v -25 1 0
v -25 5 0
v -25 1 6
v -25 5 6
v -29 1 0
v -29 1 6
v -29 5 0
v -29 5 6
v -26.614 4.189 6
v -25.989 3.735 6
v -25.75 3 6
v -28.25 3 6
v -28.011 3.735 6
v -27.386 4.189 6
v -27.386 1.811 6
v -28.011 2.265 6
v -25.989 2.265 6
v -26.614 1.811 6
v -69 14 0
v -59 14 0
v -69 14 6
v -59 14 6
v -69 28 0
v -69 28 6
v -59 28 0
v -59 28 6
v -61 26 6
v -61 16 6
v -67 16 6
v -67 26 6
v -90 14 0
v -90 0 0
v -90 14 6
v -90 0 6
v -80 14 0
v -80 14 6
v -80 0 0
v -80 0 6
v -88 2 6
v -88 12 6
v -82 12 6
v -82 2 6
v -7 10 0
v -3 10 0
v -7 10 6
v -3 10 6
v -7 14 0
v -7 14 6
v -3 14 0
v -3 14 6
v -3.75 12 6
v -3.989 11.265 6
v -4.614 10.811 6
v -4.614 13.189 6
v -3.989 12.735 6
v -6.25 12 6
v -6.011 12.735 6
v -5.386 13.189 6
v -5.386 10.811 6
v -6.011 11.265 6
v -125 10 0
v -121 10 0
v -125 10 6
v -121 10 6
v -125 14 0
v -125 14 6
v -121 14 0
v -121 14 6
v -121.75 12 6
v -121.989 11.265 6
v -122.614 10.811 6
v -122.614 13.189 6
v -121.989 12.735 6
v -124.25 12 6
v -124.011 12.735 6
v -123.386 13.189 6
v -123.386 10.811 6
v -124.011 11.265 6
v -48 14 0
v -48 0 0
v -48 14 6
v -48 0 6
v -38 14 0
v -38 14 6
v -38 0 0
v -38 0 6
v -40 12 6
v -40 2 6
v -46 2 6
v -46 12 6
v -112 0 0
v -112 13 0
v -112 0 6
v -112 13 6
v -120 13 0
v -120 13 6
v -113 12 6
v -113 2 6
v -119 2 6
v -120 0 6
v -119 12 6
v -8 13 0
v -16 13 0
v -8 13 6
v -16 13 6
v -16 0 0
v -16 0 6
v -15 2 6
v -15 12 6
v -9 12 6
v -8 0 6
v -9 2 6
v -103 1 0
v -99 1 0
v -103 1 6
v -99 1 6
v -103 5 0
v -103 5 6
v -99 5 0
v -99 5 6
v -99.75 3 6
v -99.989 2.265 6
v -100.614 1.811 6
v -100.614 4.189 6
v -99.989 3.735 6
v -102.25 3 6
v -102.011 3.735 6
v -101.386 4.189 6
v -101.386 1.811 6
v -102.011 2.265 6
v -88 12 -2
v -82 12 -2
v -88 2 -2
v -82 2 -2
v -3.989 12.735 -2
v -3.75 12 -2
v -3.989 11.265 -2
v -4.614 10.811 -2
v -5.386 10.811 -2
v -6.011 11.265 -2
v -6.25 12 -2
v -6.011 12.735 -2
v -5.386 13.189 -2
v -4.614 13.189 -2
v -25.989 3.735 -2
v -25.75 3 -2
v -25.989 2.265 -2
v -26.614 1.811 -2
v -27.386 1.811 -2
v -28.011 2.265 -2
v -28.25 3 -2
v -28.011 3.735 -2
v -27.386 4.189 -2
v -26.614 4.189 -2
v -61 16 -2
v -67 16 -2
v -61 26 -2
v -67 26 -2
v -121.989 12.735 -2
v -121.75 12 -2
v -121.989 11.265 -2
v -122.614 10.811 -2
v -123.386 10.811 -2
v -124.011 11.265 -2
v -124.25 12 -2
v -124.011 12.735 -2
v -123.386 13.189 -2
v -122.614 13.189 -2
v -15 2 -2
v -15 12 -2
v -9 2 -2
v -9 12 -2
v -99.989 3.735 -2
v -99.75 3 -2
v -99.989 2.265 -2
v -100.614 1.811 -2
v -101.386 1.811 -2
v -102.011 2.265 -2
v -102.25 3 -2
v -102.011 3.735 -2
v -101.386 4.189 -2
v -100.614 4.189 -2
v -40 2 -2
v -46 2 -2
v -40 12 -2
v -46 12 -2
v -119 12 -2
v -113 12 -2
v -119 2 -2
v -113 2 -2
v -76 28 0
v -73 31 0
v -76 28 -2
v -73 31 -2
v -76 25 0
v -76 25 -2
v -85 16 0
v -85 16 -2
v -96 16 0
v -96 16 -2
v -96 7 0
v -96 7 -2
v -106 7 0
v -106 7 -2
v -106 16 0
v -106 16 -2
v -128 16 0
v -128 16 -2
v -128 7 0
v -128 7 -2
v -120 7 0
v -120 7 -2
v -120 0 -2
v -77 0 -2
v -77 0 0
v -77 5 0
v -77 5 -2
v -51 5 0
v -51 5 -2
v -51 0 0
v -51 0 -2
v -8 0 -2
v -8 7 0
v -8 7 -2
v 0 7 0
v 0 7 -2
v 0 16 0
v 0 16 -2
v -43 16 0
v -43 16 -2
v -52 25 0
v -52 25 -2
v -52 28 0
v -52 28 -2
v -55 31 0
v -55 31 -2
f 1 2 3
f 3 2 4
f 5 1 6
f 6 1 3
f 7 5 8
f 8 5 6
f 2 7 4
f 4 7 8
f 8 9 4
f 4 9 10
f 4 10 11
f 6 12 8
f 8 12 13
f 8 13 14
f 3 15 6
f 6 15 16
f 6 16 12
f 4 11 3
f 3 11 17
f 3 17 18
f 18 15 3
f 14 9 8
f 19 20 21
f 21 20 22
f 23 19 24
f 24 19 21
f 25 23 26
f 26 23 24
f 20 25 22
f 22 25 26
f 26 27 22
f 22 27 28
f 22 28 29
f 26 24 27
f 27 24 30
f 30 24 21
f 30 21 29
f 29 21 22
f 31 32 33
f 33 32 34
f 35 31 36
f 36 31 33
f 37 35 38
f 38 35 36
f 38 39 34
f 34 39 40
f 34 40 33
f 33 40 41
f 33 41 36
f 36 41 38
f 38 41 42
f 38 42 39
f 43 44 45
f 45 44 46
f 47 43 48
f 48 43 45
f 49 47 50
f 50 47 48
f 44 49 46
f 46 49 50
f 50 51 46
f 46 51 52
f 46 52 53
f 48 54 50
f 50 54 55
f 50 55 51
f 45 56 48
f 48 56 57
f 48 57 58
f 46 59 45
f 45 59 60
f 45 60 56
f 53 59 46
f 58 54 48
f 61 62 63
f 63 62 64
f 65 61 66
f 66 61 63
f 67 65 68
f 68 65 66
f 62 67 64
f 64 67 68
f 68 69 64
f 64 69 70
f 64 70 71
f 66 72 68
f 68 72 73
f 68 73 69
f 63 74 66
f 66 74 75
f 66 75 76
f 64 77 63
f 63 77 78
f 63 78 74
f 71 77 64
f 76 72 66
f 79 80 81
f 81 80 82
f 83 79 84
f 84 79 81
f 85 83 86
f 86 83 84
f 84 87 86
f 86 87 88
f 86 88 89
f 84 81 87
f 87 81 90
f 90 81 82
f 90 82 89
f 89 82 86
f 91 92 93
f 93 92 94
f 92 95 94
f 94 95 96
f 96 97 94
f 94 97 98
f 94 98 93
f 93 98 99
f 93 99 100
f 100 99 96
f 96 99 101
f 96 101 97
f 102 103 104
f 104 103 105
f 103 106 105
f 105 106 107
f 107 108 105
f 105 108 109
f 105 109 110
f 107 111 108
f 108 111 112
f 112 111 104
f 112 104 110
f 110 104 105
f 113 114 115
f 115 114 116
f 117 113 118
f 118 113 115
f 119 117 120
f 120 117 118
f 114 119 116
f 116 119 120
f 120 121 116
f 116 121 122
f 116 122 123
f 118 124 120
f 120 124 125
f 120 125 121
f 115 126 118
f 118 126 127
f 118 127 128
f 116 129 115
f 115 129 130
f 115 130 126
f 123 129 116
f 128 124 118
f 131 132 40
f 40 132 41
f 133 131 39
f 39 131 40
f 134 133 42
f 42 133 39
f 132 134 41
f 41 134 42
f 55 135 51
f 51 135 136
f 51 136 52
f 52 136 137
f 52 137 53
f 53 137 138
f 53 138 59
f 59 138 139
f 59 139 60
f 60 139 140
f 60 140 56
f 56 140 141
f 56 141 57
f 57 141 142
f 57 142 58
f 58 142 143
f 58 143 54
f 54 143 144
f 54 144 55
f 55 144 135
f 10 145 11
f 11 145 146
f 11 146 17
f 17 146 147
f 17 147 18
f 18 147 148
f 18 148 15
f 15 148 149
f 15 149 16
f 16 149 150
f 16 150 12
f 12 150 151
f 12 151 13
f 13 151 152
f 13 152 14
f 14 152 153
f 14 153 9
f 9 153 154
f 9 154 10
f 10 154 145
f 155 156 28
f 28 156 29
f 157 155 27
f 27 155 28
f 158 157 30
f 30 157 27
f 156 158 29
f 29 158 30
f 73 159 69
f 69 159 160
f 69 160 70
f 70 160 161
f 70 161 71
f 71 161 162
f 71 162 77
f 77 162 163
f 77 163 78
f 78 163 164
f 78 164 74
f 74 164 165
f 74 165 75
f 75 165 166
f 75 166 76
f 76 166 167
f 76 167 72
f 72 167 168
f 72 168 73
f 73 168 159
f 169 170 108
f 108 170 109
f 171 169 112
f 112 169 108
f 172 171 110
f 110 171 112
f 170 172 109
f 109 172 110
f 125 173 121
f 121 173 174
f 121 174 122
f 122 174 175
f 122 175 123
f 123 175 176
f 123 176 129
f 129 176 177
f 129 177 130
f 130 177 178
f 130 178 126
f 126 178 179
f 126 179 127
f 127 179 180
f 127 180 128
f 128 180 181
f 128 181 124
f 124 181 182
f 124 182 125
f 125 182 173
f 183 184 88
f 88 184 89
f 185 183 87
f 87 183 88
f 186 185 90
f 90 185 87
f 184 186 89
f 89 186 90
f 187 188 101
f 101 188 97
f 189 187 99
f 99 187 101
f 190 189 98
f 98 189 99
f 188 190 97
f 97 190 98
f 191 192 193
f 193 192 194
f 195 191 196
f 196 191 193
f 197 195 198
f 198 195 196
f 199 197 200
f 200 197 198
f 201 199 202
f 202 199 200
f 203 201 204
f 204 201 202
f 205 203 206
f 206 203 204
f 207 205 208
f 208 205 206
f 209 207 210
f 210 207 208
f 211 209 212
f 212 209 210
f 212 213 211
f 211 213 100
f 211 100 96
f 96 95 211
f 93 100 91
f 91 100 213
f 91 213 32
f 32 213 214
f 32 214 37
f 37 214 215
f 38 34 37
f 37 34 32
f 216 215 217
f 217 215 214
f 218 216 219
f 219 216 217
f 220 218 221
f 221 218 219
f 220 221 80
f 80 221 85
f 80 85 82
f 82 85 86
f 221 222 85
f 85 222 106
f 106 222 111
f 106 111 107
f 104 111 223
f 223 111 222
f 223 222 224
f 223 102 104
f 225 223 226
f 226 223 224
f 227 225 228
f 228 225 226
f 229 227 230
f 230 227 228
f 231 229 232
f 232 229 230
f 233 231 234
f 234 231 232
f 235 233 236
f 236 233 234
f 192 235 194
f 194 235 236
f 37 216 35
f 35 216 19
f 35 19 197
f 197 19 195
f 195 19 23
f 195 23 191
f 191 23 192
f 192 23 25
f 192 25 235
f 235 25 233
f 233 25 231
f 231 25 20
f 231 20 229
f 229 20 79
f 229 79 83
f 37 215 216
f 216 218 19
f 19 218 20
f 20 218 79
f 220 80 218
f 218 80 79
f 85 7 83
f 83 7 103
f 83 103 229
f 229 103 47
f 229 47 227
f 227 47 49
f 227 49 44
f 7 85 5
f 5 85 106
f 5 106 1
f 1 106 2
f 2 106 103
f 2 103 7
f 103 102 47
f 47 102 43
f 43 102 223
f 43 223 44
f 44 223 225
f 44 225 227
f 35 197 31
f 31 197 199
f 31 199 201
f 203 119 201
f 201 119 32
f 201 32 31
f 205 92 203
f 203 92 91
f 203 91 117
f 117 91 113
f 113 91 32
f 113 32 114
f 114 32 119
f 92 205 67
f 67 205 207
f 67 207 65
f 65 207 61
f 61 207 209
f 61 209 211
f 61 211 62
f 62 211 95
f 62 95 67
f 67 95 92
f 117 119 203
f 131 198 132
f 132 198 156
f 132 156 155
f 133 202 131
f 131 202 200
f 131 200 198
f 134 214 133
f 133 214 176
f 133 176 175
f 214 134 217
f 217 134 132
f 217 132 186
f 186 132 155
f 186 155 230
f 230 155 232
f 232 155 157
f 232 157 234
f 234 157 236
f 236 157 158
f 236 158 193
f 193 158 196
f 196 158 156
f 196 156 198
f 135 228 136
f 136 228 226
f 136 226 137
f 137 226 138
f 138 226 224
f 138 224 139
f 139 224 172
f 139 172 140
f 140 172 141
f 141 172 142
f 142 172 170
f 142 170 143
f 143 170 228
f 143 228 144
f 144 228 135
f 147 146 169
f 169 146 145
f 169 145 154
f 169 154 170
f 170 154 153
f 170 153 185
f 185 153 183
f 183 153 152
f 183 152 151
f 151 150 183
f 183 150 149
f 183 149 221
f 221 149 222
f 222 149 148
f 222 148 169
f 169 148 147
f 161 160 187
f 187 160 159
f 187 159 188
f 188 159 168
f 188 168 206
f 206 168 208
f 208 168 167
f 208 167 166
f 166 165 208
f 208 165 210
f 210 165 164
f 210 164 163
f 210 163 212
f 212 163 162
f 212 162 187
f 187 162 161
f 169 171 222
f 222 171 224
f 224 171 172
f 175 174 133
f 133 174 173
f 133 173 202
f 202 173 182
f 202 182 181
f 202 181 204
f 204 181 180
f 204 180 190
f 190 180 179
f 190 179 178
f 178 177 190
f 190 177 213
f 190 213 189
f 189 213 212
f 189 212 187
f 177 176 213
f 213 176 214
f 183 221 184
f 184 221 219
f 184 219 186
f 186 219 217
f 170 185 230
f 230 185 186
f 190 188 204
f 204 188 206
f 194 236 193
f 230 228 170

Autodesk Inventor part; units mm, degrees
ref_plane "YZ Plane" through (0, 0, 0) normal (1, 0, 0) x (0, 1, 0)
ref_plane "XZ Plane" through (0, 0, 0) normal (0, 1, 0) x (-1, 0, 0)
ref_plane "XY Plane" through (0, 0, 0) normal (0, 0, 1) x (1, 0, 0)
sketch "Sketch1" plane through (0, 0, 0) normal (0, 0, 1) x (1, 0, 0)
  line L0 (-64, 31) -> (-73, 31)
  line L1 (-76, 28) -> (-76, 25)
  line L2 (-85, 16) -> (-76, 25)
  line L3 (-76, 28) -> (-73, 31)
  line L4 (-64, 31) -> (-55, 31)
  line L5 (-52, 28) -> (-52, 25)
  line L6 (-43, 16) -> (-52, 25)
  line L7 (-52, 28) -> (-55, 31)
  line L8 (-43, 16) -> (0, 16)
  line L9 (-77, 0) -> (-77, 5)
  line L10 (-77, 5) -> (-51, 5)
  line L11 (-51, 5) -> (-51, 0)
  line L12 (-106, 16) -> (-106, 7)
  line L13 (-106, 7) -> (-96, 7)
  line L14 (-96, 7) -> (-96, 16)
  line L15 (-128, 16) -> (-106, 16)
  line L16 (-96, 16) -> (-85, 16)
  line L17 (-120, 0) -> (-120, 7)
  line L18 (-120, 7) -> (-128, 7)
  line L19 (-120, 0) -> (-77, 0)
  line L20 (-128, 16) -> (-128, 7)
  line L21 (-8, 0) -> (-8, 7)
  line L22 (-8, 7) -> (0, 7)
  line L23 (-51, 0) -> (-8, 0)
  line L24 (0, 7) -> (0, 16)
  point P0 (0, 0)
  dimension "d0" = 128
  dimension "d6" = 3
  dimension "d67" = 5
  dimension "d71" = 22
  dimension "d74" = 9
  dimension "d75" = 10
  dimension "d93" = 7
  dimension "d94" = 8
  dimension "d95" = 7
extrude "Extrusion1" add sketch "Sketch1" against normal blind 2
sketch "Sketch2" plane through (0, 0, 0) normal (0, 0, 1) x (1, 0, 0)
  line L0 (-119, 2) -> (-113, 2)
  line L1 (-113, 2) -> (-113, 12)
  line L2 (-113, 12) -> (-119, 12)
  line L3 (-119, 12) -> (-119, 2)
  line L4 (-121, 10) -> (-125, 10)
  line L5 (-125, 10) -> (-125, 14)
  line L6 (-125, 14) -> (-121, 14)
  line L7 (-121, 14) -> (-121, 10)
  line L8 (-88, 2) -> (-82, 2)
  line L9 (-82, 2) -> (-82, 12)
  line L10 (-82, 12) -> (-88, 12)
  line L11 (-88, 12) -> (-88, 2)
  line L12 (-90, 0) -> (-80, 0)
  line L13 (-80, 0) -> (-80, 14)
  line L14 (-80, 14) -> (-90, 14)
  line L15 (-90, 14) -> (-90, 0)
  line L16 (-99, 1) -> (-103, 1)
  line L17 (-103, 1) -> (-103, 5)
  line L18 (-103, 5) -> (-99, 5)
  line L19 (-99, 5) -> (-99, 1)
  line L20 (-61, 26) -> (-67, 26)
  line L21 (-67, 26) -> (-67, 16)
  line L22 (-67, 16) -> (-61, 16)
  line L23 (-61, 16) -> (-61, 26)
  line L24 (-59, 14) -> (-69, 14)
  line L25 (-69, 14) -> (-69, 28)
  line L26 (-69, 28) -> (-59, 28)
  line L27 (-59, 28) -> (-59, 14)
  line L28 (-9, 2) -> (-15, 2)
  line L29 (-15, 2) -> (-15, 12)
  line L30 (-15, 12) -> (-9, 12)
  line L31 (-9, 12) -> (-9, 2)
  line L32 (-7, 10) -> (-3, 10)
  line L33 (-3, 10) -> (-3, 14)
  line L34 (-3, 14) -> (-7, 14)
  line L35 (-7, 14) -> (-7, 10)
  line L36 (-40, 2) -> (-46, 2)
  line L37 (-46, 2) -> (-46, 12)
  line L38 (-46, 12) -> (-40, 12)
  line L39 (-40, 12) -> (-40, 2)
  line L40 (-38, 0) -> (-48, 0)
  line L41 (-48, 0) -> (-48, 14)
  line L42 (-48, 14) -> (-38, 14)
  line L43 (-38, 14) -> (-38, 0)
  line L44 (-29, 1) -> (-25, 1)
  line L45 (-25, 1) -> (-25, 5)
  line L46 (-25, 5) -> (-29, 5)
  line L47 (-29, 5) -> (-29, 1)
  line L48 (-112, 13) -> (-120, 13)
  line L49 (-8, 13) -> (-16, 13)
  line L50 (-120, 13) -> (-120, 0)
  line L51 (-112, 13) -> (-112, 0)
  line L52 (-16, 13) -> (-16, 0)
  line L53 (-8, 13) -> (-8, 0)
  circle A0 centre (-123, 12) radius 1.25
  circle A1 centre (-101, 3) radius 1.25
  circle A2 centre (-27, 3) radius 1.25
  circle A3 centre (-5, 12) radius 1.25
  line L54 (-120, 0) -> (-112, 0)
  line L55 (-16, 0) -> (-8, 0)
  dimension "d12" = 6
  dimension "d13" = 10
  dimension "d21" = 6
  dimension "d22" = 10
  dimension "d23" = 2
  dimension "d29" = 6
  dimension "d30" = 10
  dimension "d31" = 2
  dimension "d48" = 1
  dimension "d49" = 2.5
  dimension "d50" = 2.5
  dimension "d51" = 2.5
  dimension "d52" = 2.5
  dimension "d69" = 13
sketch "Sketch10" plane through (0, 0, 0) normal (0, 0, 1) x (1, 0, 0)
  line L0 (-119, 2) -> (-113, 2)
  line L1 (-113, 2) -> (-113, 12)
  line L2 (-113, 12) -> (-119, 12)
  line L3 (-119, 12) -> (-119, 2)
  line L4 (-121, 10) -> (-125, 10)
  line L5 (-125, 10) -> (-125, 14)
  line L6 (-125, 14) -> (-121, 14)
  line L7 (-121, 14) -> (-121, 10)
  line L8 (-88, 2) -> (-82, 2)
  line L9 (-82, 2) -> (-82, 12)
  line L10 (-82, 12) -> (-88, 12)
  line L11 (-88, 12) -> (-88, 2)
  line L12 (-90, 0) -> (-80, 0)
  line L13 (-80, 0) -> (-80, 14)
  line L14 (-80, 14) -> (-90, 14)
  line L15 (-90, 14) -> (-90, 0)
  line L16 (-99, 1) -> (-103, 1)
  line L17 (-103, 1) -> (-103, 5)
  line L18 (-103, 5) -> (-99, 5)
  line L19 (-99, 5) -> (-99, 1)
  line L20 (-61, 26) -> (-67, 26)
  line L21 (-67, 26) -> (-67, 16)
  line L22 (-67, 16) -> (-61, 16)
  line L23 (-61, 16) -> (-61, 26)
  line L24 (-59, 14) -> (-69, 14)
  line L25 (-69, 14) -> (-69, 28)
  line L26 (-69, 28) -> (-59, 28)
  line L27 (-59, 28) -> (-59, 14)
  line L28 (-25, 1) -> (-25, 5)
  line L29 (-9, 2) -> (-15, 2)
  line L30 (-15, 2) -> (-15, 12)
  line L31 (-15, 12) -> (-9, 12)
  line L32 (-9, 12) -> (-9, 2)
  line L33 (-7, 14) -> (-7, 10)
  line L34 (-7, 10) -> (-3, 10)
  line L35 (-3, 10) -> (-3, 14)
  line L36 (-3, 14) -> (-7, 14)
  line L37 (-29, 1) -> (-25, 1)
  line L38 (-25, 5) -> (-29, 5)
  line L39 (-29, 5) -> (-29, 1)
  line L40 (-38, 14) -> (-38, 0)
  line L41 (-40, 12) -> (-40, 2)
  line L42 (-40, 2) -> (-46, 2)
  line L43 (-46, 12) -> (-40, 12)
  line L44 (-46, 2) -> (-46, 12)
  line L45 (-48, 14) -> (-38, 14)
  line L46 (-48, 0) -> (-48, 14)
  line L47 (-38, 0) -> (-48, 0)
  line L48 (-112, 13) -> (-120, 13)
  line L49 (-8, 13) -> (-16, 13)
  circle A0 centre (-123, 12) radius 1.25
  circle A1 centre (-101, 3) radius 1.25
  circle A2 centre (-27, 3) radius 1.25
  circle A3 centre (-5, 12) radius 1.25
  line L50 (-120, 13) -> (-120, 0)
  line L51 (-112, 13) -> (-112, 0)
  line L52 (-112, 0) -> (-120, 0)
  line L53 (-16, 13) -> (-16, 0)
  line L54 (-16, 0) -> (-8, 0)
  line L55 (-8, 13) -> (-8, 0)
  point P0 (-100.5385, 17.107)
  point P1 (-110.5385, 3.107)
  point P2 (-100.5385, 3.107)
  point P3 (-141.5385, 3.107)
  point P4 (-131.5385, 3.107)
  point P5 (-183.5385, 3.107)
  point P6 (-173.5385, 3.107)
  point P7 (-214.5385, 3.107)
  point P8 (-204.5385, 3.107)
  point P9 (-214.5385, 17.107)
  point P10 (0, 16)
  point P11 (0, 0)
  dimension "d53" = 6
  dimension "d54" = 10
  dimension "d55" = 6
  dimension "d56" = 10
  dimension "d57" = 2
  dimension "d58" = 6
  dimension "d59" = 10
  dimension "d60" = 2
  dimension "d61" = 1
  dimension "d62" = 2.5
  dimension "d63" = 2.5
  dimension "d64" = 2.5
  dimension "d65" = 2.5
extrude "Extrusion2" cut sketch "Sketch2" against normal blind 2 contours L3 L2 L1 L0 | L11 L10 L9 L8 | L23 L22 L21 L20 | L28 L29 L30 L31 | L36 L37 L38 L39 | A0 | A1 | A2 | A3
extrude "Extrusion7" add sketch "Sketch10" along normal blind 6
properties part number "Infravermelhos_revisto_2"
